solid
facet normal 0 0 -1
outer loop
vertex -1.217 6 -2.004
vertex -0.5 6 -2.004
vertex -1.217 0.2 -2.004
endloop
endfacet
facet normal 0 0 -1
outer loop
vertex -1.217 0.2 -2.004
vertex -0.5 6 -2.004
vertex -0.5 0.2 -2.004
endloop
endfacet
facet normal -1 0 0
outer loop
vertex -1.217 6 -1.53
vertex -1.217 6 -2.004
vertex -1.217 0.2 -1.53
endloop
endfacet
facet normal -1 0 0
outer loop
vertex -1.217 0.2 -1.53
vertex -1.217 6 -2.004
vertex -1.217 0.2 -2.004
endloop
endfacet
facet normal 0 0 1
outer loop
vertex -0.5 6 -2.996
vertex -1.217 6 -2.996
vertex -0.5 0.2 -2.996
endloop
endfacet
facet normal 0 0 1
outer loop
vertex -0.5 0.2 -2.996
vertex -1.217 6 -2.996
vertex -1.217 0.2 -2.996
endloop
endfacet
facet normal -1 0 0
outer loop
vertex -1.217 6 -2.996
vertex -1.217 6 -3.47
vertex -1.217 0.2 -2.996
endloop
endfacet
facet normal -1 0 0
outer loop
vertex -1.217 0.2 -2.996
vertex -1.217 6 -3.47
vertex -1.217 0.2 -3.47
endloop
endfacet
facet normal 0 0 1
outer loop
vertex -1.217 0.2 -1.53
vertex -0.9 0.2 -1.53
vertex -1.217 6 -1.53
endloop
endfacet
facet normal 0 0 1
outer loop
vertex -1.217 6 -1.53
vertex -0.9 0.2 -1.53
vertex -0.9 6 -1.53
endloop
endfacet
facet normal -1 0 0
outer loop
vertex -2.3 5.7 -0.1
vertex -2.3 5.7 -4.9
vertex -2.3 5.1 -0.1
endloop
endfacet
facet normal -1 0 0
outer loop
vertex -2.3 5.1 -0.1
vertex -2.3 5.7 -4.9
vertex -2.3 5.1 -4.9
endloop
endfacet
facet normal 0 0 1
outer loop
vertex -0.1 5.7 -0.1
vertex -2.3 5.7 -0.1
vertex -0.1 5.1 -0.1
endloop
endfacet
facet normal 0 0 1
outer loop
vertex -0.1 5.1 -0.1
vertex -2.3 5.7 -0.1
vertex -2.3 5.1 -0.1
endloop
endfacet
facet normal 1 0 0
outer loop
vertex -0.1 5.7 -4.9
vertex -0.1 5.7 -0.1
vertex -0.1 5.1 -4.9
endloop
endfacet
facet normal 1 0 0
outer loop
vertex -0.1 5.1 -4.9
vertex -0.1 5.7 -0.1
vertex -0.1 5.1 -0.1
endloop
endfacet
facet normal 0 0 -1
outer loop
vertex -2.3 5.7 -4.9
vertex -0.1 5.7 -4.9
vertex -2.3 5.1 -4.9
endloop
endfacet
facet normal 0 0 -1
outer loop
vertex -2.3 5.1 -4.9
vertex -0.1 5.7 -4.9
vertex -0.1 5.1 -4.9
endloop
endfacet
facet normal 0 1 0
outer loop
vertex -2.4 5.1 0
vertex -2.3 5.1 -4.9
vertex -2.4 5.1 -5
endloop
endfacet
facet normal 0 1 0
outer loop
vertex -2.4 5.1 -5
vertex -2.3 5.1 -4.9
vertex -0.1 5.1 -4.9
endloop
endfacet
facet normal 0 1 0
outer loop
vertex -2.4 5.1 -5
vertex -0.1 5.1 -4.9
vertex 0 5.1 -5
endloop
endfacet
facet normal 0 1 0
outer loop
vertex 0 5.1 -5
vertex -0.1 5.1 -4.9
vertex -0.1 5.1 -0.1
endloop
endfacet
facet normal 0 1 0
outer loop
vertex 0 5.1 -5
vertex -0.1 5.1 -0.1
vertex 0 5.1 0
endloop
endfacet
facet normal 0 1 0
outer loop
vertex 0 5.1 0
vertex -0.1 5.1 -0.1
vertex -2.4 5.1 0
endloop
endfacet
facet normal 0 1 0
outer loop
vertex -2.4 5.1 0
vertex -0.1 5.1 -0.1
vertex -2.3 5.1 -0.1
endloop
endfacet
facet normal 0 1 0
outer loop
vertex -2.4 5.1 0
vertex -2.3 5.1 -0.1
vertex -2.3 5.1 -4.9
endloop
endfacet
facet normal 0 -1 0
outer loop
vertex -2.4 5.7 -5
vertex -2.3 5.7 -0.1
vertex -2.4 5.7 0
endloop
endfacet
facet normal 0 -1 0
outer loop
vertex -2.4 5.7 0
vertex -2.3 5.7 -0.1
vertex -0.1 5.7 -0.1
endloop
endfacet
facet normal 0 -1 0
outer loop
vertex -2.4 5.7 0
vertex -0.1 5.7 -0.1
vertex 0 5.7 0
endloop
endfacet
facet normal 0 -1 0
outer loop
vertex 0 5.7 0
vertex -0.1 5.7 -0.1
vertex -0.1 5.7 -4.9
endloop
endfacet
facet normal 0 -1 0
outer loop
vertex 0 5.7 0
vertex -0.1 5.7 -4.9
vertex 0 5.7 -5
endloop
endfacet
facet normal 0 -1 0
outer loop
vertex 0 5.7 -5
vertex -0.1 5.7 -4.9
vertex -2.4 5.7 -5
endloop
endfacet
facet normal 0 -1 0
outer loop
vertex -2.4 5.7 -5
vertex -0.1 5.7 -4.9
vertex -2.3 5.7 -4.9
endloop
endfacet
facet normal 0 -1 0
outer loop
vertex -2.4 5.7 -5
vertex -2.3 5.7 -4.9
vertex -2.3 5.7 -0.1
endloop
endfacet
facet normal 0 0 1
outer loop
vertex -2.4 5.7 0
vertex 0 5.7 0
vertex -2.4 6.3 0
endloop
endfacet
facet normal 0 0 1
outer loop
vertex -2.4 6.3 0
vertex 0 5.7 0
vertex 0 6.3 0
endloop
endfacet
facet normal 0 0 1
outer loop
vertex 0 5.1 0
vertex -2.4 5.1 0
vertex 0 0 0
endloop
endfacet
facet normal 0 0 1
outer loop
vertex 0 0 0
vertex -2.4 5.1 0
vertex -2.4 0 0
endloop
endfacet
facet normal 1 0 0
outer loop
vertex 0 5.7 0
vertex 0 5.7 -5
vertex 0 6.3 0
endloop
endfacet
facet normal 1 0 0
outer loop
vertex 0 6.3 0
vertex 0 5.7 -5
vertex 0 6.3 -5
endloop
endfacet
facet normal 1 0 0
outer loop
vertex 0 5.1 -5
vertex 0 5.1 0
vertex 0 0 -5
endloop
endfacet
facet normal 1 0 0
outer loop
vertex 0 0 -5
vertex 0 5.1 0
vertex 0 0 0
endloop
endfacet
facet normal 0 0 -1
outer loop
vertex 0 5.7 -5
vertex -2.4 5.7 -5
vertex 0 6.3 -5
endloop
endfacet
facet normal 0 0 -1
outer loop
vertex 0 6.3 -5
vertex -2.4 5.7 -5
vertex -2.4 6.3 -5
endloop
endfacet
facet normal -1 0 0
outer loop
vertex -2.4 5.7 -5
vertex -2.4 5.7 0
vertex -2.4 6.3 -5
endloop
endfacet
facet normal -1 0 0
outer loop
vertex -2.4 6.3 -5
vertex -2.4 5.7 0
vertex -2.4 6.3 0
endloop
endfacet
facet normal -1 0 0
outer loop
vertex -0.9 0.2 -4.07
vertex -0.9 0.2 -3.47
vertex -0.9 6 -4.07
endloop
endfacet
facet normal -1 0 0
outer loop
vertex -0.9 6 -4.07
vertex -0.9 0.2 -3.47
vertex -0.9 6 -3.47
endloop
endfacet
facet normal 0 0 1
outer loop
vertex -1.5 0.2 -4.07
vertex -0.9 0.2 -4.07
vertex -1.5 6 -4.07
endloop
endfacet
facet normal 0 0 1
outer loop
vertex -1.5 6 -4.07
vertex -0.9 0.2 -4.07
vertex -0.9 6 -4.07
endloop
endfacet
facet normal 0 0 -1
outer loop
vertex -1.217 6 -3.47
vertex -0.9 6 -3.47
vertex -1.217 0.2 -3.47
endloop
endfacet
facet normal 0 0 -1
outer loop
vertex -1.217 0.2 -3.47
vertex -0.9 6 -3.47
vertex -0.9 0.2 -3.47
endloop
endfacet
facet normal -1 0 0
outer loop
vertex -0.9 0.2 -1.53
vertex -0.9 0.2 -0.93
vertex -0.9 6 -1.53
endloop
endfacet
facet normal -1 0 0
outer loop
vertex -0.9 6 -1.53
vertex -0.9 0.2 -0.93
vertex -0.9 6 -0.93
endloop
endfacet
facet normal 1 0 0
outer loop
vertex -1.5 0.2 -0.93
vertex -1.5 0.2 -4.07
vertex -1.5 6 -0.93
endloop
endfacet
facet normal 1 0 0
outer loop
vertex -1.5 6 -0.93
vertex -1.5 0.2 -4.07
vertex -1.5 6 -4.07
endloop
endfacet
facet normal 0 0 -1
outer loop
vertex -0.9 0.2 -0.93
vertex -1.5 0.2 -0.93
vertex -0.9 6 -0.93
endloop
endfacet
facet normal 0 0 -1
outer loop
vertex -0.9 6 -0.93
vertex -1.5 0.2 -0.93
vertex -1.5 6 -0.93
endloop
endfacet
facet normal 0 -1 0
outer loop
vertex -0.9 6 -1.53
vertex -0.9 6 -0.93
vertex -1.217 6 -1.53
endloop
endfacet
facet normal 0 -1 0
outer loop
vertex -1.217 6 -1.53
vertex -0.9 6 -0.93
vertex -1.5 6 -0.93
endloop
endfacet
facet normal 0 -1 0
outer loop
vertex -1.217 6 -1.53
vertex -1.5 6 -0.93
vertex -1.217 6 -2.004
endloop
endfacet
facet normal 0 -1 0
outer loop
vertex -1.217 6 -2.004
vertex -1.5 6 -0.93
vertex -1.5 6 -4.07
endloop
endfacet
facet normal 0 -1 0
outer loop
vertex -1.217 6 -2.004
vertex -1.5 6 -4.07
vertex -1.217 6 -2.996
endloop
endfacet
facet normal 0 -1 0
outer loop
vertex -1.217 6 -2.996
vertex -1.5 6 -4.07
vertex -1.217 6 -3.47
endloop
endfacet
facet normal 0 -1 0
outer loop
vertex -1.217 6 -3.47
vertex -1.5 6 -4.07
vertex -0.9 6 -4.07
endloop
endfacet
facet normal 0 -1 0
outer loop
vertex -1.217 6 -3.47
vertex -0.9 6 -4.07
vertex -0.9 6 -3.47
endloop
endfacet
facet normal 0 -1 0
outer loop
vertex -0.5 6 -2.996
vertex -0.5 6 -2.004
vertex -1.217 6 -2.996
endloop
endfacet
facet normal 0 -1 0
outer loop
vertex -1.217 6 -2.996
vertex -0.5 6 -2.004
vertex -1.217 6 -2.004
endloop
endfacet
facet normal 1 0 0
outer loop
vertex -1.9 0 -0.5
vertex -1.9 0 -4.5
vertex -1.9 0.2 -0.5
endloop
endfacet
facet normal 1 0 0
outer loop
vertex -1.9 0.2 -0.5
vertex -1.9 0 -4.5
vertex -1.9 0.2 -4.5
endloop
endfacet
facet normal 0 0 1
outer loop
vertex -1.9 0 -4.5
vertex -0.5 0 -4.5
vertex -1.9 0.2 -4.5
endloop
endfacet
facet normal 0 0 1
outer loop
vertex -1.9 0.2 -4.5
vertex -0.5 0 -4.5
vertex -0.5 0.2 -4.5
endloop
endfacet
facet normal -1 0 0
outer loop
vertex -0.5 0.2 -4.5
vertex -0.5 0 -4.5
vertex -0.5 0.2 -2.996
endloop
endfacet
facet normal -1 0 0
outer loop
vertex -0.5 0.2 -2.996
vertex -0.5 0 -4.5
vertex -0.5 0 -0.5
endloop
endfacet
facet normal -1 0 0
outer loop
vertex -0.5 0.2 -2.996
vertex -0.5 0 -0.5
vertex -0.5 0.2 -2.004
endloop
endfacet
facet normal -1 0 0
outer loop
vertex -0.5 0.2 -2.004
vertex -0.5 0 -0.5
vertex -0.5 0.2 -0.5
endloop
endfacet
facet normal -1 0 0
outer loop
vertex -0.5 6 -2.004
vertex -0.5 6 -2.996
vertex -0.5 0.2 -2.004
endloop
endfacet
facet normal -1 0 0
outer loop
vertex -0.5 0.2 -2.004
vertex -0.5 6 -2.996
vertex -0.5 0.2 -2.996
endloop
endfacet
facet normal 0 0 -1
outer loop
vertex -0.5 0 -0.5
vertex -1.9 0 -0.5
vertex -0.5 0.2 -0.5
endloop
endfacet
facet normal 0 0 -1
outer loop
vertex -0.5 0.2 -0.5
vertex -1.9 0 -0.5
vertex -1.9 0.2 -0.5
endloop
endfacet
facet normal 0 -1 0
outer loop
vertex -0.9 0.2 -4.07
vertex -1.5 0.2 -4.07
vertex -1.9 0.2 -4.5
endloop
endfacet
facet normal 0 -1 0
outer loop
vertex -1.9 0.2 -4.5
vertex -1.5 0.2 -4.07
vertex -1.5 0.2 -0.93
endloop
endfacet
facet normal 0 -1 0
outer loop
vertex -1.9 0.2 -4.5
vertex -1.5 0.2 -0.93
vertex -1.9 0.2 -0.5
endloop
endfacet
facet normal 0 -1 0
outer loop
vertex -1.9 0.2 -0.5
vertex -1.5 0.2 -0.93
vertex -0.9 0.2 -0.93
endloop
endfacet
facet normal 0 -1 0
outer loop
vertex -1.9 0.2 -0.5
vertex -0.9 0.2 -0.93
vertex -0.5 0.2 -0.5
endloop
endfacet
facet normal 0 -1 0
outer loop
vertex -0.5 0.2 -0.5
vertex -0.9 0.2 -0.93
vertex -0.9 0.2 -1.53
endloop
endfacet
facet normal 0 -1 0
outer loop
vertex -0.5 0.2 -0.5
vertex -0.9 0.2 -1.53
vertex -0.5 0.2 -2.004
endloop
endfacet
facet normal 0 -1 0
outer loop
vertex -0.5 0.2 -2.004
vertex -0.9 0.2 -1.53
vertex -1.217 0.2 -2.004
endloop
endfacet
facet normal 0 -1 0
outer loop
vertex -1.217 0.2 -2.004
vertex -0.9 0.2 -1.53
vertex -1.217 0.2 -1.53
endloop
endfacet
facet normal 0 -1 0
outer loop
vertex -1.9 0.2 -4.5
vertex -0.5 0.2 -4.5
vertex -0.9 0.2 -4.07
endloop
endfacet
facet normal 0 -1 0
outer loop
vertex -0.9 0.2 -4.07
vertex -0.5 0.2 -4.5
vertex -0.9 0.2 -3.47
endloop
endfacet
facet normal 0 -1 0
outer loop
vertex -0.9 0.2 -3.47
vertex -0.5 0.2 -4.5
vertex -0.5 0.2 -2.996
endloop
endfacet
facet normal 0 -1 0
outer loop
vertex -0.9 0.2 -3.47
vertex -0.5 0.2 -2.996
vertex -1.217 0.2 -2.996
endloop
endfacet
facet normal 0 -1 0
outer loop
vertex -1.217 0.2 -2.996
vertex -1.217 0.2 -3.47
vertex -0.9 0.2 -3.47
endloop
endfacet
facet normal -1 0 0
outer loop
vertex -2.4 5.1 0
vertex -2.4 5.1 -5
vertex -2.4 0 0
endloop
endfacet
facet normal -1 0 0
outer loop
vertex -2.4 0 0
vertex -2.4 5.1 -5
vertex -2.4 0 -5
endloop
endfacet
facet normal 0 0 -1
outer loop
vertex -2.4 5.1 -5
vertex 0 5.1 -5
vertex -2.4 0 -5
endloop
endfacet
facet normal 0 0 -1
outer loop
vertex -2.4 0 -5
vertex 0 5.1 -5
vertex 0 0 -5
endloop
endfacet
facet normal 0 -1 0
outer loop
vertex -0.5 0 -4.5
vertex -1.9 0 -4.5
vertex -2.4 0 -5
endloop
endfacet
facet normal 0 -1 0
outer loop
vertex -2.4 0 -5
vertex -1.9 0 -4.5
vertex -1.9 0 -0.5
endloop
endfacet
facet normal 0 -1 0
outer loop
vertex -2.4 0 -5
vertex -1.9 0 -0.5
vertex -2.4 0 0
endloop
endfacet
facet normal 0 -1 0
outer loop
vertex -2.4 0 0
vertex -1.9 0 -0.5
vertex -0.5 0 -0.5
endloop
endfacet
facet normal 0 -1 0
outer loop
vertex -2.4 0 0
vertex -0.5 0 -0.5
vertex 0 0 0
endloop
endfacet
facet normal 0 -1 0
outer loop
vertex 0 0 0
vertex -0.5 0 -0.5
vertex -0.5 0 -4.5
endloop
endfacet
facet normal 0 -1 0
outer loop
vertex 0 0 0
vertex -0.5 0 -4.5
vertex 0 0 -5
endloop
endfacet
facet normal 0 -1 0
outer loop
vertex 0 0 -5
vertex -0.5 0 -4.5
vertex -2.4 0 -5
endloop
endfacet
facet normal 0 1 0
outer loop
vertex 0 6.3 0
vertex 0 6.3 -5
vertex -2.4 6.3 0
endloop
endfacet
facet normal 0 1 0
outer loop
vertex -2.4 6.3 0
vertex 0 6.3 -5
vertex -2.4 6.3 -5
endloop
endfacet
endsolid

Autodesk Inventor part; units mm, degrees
ref_plane "YZ Plane" through (0, 0, 0) normal (1, 0, 0) x (0, 1, 0)
ref_plane "XZ Plane" through (0, 0, 0) normal (0, 1, 0) x (-1, 0, 0)
sketch "Skizze2" plane through (0, 0, 0) normal (0, 1, 0) x (-1, 0, 0)
  line L0 (0, 0) -> (2.4, 0)
  line L1 (2.4, 0) -> (2.4, -5)
  line L2 (2.4, -5) -> (0, -5)
  line L3 (0, -5) -> (0, 0)
  dimension "d0" = 2.4
  dimension "d1" = 5
extrude "Extrusion1" add sketch "Skizze2" along normal blind 6.3
sketch "Skizze3" plane through (0, 0, 0) normal (0, -1, 0) x (1, 0, 0)
  line L0 (-0.9, -3.47) -> (-1.5, -3.47)
  line L1 (-1.5, -3.47) -> (-1.5, -4.07)
  line L2 (-1.5, -4.07) -> (-0.9, -4.07)
  line L3 (-0.9, -4.07) -> (-0.9, -3.47)
  line L4 (-0.9, -0.93) -> (-1.5, -0.93)
  line L5 (-1.5, -0.93) -> (-1.5, -1.53)
  line L6 (-1.5, -1.53) -> (-0.9, -1.53)
  line L7 (-0.9, -1.53) -> (-0.9, -0.93)
  line L8 (-2.4, -5) -> (0, -5) projected
  line L9 (-2.4, 0) -> (-2.4, -5) projected
  point P0 (0, 0)
  dimension "d4" = 0.6
  dimension "d5" = 0.6
  dimension "d6" = 0.6
  dimension "d7" = 0.6
  dimension "d8" = 2.54
  dimension "d9" = 0.93
  dimension "d10" = 0.9
  dimension "d11" = 0.9
sketch "Skizze5" plane through (0, 0, 0) normal (0, -1, 0) x (1, 0, 0)
  line L0 (-0.5, -0.5) -> (-1.9, -0.5)
  line L1 (-1.9, -0.5) -> (-1.9, -4.5)
  line L2 (-1.9, -4.5) -> (-0.5, -4.5)
  line L3 (-0.5, -4.5) -> (-0.5, -0.5)
  line L4 (-2.4, 0) -> (-2.4, -5) projected
  line L5 (0, -5) -> (-2.4, -5) projected
  point P0 (0, 0)
  dimension "d15" = 1.4
  dimension "d16" = 4
  dimension "d17" = 0.5
  dimension "d18" = 0.5
extrude "Extrusion2" cut sketch "Skizze5" against normal blind 0.2
extrude "Extrusion3" cut sketch "Skizze3" against normal blind 6
ref_plane "Arbeitsebene1" through (0, 5.7, 0) normal (0, 1, 0) x (1, 0, 0)
sketch "Skizze6" plane through (0, 5.7, 0) normal (0, 1, 0) x (1, 0, 0)
  line L0 (1, -1) -> (-3, -1)
  line L1 (-3, -1) -> (-3, 6)
  line L2 (-3, 6) -> (1, 6)
  line L3 (1, 6) -> (1, -1)
  line L4 (-0.1, 4.9) -> (-2.3, 4.9)
  line L5 (-2.3, 4.9) -> (-2.3, 0.1)
  line L6 (-2.3, 0.1) -> (-0.1, 0.1)
  line L7 (-0.1, 0.1) -> (-0.1, 4.9)
  line L8 (0, 5) -> (-2.4, 5) projected
  line L9 (0, 0) -> (0, 5) projected
  line L10 (0, 0) -> (-2.4, 0) projected
  line L11 (-2.4, 5) -> (-2.4, 0) projected
  dimension "d24" = 0.1
  dimension "d25" = 0.1
  dimension "d26" = 0.1
  dimension "d27" = 0.1
extrude "Extrusion5" cut sketch "Skizze6" against normal blind 0.6 contours L0 L1 L2 L3 | L9 L10 L11 L8
sketch "Skizze7" plane through (0, 0.2, 0) normal (0, -1, 0) x (1, 0, 0)
  line L0 (-0.5, -2.004) -> (-1.5, -2.004)
  line L1 (-1.5, -2.004) -> (-1.5, -2.996)
  line L2 (-1.5, -2.996) -> (-0.5, -2.996)
  line L3 (-0.5, -2.996) -> (-0.5, -2.004)
  line L4 (-1.5, -3.47) -> (-0.9, -3.47) projected
  line L5 (-0.9, -1.53) -> (-1.5, -1.53) projected
  line L6 (-0.5, -0.5) -> (-0.5, -4.5) projected
  line L7 (-1.5, -1.53) -> (-1.5, -0.93) projected
  line L8 (-1.5, -2.004) -> (-1.217, -2.004)
  line L9 (-1.217, -2.004) -> (-1.217, -1.53)
  line L10 (-1.217, -1.53) -> (-1.5, -1.53)
  line L11 (-1.5, -1.53) -> (-1.5, -2.004)
  line L12 (-1.5, -3.47) -> (-0.9, -3.47) projected
  line L13 (-1.5, -2.996) -> (-1.217, -2.996)
  line L14 (-1.217, -2.996) -> (-1.217, -3.47)
  line L15 (-1.217, -3.47) -> (-1.5, -3.47)
  line L16 (-1.5, -3.47) -> (-1.5, -2.996)
  point P0 (0, 0)
  dimension "d32" = 0.474
  dimension "d33" = 0.474
  dimension "d34" = 0.283
  dimension "d35" = 0.283
extrude "Extrusion6" cut sketch "Skizze7" against normal up to surface (5.8 mm away)
properties part number "Jumper"
